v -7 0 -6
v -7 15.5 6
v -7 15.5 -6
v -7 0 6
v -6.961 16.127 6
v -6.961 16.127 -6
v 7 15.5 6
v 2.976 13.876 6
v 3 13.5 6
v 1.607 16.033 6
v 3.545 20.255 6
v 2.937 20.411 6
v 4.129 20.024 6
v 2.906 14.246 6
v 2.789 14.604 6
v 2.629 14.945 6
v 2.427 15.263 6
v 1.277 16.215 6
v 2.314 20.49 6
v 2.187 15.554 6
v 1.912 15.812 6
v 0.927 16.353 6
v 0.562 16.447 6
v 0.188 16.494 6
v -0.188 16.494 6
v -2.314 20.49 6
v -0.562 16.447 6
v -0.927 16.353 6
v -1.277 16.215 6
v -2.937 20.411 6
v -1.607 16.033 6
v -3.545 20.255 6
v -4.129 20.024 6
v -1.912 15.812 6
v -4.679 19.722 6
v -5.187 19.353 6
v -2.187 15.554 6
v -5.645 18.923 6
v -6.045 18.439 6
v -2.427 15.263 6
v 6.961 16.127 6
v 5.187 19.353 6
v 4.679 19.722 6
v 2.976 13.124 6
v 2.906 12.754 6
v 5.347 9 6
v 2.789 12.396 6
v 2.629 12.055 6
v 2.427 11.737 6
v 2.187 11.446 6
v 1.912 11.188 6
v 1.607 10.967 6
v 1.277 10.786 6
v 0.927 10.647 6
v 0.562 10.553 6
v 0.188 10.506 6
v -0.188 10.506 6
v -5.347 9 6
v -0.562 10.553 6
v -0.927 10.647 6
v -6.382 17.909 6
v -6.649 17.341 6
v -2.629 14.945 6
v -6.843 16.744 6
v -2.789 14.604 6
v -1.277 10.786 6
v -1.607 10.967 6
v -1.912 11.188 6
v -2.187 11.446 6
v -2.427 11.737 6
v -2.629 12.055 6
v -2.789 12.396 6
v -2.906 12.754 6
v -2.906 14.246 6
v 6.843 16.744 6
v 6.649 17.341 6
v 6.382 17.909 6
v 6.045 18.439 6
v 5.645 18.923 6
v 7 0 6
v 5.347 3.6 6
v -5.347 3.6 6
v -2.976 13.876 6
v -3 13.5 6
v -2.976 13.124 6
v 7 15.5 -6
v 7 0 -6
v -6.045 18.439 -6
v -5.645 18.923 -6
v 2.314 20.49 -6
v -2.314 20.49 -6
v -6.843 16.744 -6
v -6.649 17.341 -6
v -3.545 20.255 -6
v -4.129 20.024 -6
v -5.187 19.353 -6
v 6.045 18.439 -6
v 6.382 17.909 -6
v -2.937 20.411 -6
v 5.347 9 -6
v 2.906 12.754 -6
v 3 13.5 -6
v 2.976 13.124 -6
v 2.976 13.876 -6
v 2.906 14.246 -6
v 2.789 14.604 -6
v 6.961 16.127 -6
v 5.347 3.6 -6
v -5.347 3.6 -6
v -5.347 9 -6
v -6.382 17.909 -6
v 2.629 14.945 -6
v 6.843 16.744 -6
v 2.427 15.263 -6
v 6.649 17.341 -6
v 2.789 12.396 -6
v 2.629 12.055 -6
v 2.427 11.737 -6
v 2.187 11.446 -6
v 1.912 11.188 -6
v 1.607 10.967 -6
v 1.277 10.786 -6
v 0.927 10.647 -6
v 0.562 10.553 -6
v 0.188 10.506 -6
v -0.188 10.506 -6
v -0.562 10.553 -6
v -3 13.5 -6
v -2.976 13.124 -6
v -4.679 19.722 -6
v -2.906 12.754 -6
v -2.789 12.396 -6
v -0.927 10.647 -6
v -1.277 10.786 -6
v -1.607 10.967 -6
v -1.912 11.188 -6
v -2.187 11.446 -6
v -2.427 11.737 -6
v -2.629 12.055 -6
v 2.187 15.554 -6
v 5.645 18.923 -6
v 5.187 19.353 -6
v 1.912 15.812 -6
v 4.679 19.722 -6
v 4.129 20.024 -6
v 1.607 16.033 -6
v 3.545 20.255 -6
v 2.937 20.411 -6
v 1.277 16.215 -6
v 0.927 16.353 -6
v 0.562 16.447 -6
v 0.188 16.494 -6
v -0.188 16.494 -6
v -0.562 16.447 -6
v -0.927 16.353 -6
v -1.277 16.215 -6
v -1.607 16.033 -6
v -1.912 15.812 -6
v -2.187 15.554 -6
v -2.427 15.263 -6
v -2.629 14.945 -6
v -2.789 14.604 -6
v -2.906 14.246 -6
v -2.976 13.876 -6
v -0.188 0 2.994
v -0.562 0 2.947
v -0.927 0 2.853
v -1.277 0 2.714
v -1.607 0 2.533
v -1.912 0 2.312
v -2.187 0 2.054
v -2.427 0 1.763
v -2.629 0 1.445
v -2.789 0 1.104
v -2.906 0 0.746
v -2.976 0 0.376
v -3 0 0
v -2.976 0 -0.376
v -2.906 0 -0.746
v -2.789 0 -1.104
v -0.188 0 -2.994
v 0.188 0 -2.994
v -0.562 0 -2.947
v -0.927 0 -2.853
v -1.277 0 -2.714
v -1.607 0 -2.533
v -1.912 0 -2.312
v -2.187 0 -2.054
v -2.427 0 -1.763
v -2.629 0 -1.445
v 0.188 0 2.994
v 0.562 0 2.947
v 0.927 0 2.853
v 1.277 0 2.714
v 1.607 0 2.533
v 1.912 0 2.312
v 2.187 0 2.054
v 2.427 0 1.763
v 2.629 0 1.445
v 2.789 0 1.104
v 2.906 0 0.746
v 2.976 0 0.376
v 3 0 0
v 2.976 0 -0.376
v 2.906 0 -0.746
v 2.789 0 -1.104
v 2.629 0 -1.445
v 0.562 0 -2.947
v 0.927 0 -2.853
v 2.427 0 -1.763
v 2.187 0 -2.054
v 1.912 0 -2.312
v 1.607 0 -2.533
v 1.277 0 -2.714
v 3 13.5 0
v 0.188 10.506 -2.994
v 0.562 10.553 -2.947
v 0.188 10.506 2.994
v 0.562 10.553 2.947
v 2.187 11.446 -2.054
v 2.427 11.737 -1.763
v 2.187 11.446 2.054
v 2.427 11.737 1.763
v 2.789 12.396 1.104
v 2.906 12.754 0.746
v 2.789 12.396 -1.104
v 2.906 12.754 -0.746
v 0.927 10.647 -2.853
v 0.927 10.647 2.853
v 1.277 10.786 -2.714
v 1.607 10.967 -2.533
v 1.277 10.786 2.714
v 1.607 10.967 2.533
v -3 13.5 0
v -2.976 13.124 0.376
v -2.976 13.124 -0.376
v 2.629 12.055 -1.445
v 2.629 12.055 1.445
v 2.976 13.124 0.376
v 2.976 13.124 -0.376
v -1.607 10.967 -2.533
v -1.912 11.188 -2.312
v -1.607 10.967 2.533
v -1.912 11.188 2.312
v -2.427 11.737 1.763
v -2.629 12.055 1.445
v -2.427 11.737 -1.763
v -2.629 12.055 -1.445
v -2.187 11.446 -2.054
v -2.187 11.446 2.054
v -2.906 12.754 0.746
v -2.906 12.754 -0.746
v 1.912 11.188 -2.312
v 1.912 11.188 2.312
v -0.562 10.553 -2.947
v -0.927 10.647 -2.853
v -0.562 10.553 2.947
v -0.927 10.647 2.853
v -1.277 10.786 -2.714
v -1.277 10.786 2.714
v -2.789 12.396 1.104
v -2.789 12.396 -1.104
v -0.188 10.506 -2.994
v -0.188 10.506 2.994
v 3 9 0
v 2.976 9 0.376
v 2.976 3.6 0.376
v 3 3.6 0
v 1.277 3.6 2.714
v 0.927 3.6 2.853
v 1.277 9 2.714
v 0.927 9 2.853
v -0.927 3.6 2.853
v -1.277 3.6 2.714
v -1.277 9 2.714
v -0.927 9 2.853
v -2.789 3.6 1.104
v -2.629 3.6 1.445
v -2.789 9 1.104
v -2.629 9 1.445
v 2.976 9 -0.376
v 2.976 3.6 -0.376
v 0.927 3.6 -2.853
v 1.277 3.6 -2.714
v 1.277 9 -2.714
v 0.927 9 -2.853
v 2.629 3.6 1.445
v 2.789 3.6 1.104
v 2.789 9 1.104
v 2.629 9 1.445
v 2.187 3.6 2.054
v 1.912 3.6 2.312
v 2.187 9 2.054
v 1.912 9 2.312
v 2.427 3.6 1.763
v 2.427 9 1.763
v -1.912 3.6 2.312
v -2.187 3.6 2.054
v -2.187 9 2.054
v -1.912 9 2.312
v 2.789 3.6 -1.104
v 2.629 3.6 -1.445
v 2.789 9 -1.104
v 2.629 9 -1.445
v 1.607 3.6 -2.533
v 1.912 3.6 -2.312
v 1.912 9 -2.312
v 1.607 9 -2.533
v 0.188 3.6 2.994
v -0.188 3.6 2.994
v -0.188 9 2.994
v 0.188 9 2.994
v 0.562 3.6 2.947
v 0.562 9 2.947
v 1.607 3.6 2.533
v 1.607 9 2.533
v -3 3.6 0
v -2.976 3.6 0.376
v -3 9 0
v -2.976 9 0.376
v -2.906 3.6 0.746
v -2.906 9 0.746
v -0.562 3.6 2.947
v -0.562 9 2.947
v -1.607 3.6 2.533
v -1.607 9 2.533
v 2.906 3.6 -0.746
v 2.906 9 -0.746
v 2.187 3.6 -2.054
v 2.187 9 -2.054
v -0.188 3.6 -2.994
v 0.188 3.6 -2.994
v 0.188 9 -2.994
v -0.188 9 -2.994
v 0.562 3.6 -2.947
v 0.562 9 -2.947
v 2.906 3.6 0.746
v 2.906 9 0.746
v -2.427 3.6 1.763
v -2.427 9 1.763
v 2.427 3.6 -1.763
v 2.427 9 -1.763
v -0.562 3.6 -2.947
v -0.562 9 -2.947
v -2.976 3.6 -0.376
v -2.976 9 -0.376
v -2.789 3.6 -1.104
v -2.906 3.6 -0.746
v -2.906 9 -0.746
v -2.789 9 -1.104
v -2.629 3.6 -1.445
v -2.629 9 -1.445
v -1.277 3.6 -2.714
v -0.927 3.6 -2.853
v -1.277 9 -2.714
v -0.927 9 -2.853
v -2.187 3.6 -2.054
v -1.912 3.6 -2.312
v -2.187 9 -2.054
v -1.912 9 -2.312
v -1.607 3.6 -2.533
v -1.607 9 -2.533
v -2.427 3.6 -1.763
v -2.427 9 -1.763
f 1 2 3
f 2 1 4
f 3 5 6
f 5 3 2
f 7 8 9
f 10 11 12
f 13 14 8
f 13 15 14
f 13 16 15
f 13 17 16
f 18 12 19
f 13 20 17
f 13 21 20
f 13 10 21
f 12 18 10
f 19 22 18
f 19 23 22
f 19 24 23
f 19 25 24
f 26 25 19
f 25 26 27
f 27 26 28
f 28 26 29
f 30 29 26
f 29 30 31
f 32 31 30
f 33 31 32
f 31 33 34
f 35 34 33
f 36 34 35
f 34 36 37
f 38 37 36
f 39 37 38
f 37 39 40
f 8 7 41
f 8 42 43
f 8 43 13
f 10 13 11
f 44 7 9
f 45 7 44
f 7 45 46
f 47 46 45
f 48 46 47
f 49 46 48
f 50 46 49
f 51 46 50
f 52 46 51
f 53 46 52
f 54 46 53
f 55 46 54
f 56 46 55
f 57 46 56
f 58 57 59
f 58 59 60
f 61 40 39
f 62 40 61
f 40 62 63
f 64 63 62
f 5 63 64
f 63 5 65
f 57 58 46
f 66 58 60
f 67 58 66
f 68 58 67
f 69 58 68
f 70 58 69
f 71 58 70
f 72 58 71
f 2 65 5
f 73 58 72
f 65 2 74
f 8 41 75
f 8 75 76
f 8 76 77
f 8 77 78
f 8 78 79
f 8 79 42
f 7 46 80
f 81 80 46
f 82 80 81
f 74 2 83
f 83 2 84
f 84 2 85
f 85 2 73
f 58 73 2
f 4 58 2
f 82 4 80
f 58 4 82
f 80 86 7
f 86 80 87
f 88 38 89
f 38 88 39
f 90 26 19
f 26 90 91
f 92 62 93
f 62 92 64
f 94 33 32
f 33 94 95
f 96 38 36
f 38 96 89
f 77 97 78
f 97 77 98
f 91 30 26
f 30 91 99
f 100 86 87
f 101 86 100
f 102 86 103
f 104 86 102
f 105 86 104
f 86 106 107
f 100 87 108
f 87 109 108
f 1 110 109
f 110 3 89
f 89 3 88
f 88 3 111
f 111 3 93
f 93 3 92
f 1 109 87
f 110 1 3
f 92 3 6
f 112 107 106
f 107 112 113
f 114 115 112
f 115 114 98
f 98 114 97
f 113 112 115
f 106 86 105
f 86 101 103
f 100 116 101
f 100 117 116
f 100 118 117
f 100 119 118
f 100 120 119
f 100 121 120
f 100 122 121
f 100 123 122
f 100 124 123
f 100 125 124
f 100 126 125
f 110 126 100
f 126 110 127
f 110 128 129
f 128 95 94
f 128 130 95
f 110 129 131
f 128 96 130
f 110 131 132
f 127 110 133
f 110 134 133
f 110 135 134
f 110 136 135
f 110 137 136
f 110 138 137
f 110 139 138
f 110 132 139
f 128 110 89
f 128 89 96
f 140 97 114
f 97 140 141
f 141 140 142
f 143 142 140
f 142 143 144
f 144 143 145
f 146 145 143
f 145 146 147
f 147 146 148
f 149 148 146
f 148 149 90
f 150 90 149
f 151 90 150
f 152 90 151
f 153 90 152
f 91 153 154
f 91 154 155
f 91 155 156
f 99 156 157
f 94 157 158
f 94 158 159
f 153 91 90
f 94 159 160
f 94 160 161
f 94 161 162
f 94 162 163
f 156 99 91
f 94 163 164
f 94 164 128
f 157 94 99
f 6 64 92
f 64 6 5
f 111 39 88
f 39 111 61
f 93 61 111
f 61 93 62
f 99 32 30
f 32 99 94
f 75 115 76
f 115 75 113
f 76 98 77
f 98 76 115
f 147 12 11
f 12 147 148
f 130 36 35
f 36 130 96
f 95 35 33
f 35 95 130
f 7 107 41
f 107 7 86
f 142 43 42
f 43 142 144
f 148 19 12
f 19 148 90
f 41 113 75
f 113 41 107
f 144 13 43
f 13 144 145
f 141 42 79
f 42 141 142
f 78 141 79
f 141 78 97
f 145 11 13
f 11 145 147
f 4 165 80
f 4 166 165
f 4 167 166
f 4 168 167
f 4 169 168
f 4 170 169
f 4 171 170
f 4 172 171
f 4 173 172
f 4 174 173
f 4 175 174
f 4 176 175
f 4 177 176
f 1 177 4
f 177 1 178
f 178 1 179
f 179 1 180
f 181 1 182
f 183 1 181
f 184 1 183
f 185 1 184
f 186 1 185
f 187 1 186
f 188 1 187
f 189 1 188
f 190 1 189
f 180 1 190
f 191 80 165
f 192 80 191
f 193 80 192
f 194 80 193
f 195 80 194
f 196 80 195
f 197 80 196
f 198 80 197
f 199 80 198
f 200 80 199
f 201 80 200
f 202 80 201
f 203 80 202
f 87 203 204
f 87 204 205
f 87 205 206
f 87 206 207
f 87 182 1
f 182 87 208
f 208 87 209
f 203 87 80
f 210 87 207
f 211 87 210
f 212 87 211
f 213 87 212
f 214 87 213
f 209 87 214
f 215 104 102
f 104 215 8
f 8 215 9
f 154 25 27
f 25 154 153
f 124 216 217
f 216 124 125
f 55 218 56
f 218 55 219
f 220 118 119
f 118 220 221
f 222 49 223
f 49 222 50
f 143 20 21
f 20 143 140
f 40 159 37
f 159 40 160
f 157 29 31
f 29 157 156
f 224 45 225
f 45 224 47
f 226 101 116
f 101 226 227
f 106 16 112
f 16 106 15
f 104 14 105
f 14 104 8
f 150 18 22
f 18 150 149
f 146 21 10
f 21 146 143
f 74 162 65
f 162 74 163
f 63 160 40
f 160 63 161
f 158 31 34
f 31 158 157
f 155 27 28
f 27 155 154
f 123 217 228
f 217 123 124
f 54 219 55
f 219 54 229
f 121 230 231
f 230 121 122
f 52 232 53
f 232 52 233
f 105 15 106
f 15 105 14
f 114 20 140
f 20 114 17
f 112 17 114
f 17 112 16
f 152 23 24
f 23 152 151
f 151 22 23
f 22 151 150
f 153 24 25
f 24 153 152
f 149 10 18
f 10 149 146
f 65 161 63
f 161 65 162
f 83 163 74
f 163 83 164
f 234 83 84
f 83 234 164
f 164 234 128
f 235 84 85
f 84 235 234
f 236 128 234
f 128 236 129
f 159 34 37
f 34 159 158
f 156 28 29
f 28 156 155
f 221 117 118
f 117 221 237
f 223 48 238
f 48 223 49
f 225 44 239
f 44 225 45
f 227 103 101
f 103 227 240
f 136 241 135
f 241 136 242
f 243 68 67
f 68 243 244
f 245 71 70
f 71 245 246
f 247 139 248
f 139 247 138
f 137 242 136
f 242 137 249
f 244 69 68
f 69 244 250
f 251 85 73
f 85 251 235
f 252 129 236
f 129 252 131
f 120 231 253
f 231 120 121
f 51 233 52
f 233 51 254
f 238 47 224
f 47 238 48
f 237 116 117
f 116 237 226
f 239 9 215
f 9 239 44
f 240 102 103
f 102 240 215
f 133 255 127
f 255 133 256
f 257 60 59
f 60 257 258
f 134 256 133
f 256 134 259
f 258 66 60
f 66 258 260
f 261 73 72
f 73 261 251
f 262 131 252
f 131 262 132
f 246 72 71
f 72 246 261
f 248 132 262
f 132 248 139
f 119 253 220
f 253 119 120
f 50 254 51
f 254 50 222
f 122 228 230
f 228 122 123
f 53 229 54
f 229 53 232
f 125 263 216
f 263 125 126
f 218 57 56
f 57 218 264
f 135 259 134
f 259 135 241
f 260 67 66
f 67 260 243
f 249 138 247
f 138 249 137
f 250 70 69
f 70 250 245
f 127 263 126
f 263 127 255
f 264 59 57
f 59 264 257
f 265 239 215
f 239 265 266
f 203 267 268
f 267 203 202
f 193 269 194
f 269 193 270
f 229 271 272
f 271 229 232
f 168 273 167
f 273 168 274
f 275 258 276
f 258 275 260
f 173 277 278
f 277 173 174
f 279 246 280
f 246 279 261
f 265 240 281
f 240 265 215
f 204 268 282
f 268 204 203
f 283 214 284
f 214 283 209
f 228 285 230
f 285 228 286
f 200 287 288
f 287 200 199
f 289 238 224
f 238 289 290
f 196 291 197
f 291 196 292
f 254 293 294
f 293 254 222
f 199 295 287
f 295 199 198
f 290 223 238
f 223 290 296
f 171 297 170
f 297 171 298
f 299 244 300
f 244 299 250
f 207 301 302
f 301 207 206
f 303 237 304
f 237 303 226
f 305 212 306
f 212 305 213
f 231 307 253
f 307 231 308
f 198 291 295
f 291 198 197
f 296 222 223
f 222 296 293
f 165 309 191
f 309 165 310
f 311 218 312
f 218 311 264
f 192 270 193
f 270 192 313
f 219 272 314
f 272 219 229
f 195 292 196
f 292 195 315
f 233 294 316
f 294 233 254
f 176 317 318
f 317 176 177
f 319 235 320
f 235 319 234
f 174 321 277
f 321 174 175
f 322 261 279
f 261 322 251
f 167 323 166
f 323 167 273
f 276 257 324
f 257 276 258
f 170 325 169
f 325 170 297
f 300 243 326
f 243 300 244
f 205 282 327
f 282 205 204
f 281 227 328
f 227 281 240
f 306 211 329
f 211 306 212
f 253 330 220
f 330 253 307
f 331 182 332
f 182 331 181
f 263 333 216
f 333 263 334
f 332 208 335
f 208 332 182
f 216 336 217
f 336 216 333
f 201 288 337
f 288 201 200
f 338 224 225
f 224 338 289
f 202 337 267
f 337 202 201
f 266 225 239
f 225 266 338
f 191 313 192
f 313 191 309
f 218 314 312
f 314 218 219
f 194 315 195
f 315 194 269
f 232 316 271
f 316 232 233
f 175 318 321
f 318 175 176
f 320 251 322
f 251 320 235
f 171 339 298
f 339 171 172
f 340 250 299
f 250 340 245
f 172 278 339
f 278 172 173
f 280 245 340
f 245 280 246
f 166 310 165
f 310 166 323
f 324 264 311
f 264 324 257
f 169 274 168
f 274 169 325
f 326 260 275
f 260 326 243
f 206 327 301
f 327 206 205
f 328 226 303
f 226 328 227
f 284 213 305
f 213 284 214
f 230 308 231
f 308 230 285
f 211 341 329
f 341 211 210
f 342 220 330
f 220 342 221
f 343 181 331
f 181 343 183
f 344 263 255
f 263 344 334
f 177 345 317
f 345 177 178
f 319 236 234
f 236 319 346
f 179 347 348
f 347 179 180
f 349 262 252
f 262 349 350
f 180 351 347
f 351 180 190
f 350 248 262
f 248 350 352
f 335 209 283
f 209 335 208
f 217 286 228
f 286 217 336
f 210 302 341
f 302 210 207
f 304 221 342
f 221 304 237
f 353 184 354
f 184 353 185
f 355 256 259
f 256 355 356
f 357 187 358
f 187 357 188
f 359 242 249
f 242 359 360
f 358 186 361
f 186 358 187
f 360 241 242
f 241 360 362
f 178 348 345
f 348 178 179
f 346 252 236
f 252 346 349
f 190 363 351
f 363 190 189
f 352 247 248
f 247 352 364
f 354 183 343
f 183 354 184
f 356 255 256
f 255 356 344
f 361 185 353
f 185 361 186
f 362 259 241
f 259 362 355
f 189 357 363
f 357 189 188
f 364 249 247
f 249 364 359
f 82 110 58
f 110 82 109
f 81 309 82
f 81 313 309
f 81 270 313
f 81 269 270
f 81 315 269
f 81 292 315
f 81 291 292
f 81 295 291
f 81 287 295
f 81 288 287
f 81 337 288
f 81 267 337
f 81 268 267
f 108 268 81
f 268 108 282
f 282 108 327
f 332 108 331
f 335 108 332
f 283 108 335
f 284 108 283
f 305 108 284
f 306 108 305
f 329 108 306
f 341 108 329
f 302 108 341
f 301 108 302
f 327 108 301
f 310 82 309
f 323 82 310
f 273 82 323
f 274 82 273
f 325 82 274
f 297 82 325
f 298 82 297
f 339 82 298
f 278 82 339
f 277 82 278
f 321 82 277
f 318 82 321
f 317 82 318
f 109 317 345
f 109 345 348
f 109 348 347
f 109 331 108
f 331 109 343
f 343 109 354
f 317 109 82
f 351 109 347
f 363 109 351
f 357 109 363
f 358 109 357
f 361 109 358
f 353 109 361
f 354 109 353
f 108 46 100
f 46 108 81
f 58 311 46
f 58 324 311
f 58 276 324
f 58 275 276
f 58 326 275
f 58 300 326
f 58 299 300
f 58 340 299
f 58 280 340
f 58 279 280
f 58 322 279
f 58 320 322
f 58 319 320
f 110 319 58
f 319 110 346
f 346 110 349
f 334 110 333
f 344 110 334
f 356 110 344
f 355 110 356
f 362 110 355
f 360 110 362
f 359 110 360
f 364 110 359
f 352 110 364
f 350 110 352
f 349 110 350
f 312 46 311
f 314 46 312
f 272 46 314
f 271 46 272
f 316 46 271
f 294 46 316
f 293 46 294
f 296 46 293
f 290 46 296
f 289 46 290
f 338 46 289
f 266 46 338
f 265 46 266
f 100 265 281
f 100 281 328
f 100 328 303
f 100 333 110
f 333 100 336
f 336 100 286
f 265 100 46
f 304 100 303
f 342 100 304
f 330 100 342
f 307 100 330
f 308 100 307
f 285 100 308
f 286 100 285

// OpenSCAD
$fn = 50;


difference() {
	union() {
		translate(v = [0, 13.5000000000, -6.0000000000]) {
			rotate(a = [0, 0, 0]) {
				hull() {
					translate(v = [-2.0000000000, 2.0000000000, 0]) {
						rotate(a = [0, 0, 0]) {
							translate(v = [0, 0, 0]) {
								rotate(a = [0, 0, 0]) {
									cylinder(h = 12, r = 5);
								}
							}
						}
					}
					translate(v = [2.0000000000, 2.0000000000, 0]) {
						rotate(a = [0, 0, 0]) {
							translate(v = [0, 0, 0]) {
								rotate(a = [0, 0, 0]) {
									cylinder(h = 12, r = 5);
								}
							}
						}
					}
					translate(v = [-2.0000000000, -2.0000000000, 0]) {
						rotate(a = [0, 0, 0]) {
							translate(v = [0, 0, 0]) {
								rotate(a = [0, 0, 0]) {
									cylinder(h = 12, r = 5);
								}
							}
						}
					}
					translate(v = [2.0000000000, -2.0000000000, 0]) {
						rotate(a = [0, 0, 0]) {
							translate(v = [0, 0, 0]) {
								rotate(a = [0, 0, 0]) {
									cylinder(h = 12, r = 5);
								}
							}
						}
					}
				}
			}
		}
		translate(v = [-7.0000000000, 0, -6.0000000000]) {
			rotate(a = [0, 0, 0]) {
				cube(size = [14, 13.5000000000, 12]);
			}
		}
	}
	union() {
		translate(v = [0.0000000000, 13.5000000000, -6.0000000000]) {
			rotate(a = [0, 0, 0]) {
				translate(v = [0, 0, -50]) {
					rotate(a = [0, 0, 0]) {
						cylinder(h = 100, r = 3.0000000000);
					}
				}
			}
		}
		translate(v = [0.0000000000, 13.5000000000, 0]) {
			rotate(a = [90, 0, 0]) {
				cylinder(h = 13.5000000000, r = 3.0000000000);
			}
		}
		translate(v = [-5.3466204506, 9, -25]) {
			rotate(a = [90, 0, 0]) {
				cube(size = [10.6932409012, 100, 5.4000000000]);
			}
		}
	}
}
